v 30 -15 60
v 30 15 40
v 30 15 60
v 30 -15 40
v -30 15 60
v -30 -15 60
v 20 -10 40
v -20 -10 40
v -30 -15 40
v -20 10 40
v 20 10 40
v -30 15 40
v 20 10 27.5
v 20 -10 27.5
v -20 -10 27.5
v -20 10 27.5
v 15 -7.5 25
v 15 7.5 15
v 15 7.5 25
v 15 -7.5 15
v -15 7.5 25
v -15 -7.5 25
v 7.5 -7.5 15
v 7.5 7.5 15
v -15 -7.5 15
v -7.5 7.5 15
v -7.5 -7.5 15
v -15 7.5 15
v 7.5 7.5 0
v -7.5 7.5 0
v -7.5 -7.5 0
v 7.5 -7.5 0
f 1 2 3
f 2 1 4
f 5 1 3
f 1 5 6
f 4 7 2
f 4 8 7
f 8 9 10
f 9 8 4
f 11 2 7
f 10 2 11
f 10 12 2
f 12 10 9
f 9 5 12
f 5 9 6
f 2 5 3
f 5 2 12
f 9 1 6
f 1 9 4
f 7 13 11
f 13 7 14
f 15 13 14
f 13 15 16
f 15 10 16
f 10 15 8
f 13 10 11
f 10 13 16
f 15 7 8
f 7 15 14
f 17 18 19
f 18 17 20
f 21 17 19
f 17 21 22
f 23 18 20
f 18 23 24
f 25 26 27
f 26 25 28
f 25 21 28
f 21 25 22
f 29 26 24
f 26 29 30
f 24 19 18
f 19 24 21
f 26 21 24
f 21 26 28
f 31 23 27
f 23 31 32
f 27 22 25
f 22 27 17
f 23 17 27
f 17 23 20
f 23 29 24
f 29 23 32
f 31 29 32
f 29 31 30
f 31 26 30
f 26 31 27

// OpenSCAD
// Dimensions for each component
large_block_dims = [60, 30, 20];  // Length, Width, Height
medium_block_dims = [40, 20, 15];
small_block_dims = [30, 15, 10];
cubic_block_dims = [15, 15, 15];

// Positional offsets for independent placement
large_block_offset = [0, 0, 50];  // Centered and elevated
medium_block_offset = [0, 0, 35]; // Aligned with the large block
small_block_offset = [0, 0, 20];  // Aligned with the medium block
cubic_block_offset = [0, 0, 7.5]; // Centered beneath the small block

// Function to create a rectangular block
module rectangular_block(size, offset) {
    translate(offset)
        cube(size, center = true);
}

// Assembly of the model
module assembly() {
    // Large rectangular block (centered and aligned)
    rectangular_block(large_block_dims, large_block_offset);

    // Medium rectangular block (aligned with the large block)
    rectangular_block(medium_block_dims, medium_block_offset);

    // Small rectangular block (aligned with the medium block)
    rectangular_block(small_block_dims, small_block_offset);

    // Cubic block (centered beneath the small block)
    rectangular_block(cubic_block_dims, cubic_block_offset);
}

// Render the assembly
assembly();
